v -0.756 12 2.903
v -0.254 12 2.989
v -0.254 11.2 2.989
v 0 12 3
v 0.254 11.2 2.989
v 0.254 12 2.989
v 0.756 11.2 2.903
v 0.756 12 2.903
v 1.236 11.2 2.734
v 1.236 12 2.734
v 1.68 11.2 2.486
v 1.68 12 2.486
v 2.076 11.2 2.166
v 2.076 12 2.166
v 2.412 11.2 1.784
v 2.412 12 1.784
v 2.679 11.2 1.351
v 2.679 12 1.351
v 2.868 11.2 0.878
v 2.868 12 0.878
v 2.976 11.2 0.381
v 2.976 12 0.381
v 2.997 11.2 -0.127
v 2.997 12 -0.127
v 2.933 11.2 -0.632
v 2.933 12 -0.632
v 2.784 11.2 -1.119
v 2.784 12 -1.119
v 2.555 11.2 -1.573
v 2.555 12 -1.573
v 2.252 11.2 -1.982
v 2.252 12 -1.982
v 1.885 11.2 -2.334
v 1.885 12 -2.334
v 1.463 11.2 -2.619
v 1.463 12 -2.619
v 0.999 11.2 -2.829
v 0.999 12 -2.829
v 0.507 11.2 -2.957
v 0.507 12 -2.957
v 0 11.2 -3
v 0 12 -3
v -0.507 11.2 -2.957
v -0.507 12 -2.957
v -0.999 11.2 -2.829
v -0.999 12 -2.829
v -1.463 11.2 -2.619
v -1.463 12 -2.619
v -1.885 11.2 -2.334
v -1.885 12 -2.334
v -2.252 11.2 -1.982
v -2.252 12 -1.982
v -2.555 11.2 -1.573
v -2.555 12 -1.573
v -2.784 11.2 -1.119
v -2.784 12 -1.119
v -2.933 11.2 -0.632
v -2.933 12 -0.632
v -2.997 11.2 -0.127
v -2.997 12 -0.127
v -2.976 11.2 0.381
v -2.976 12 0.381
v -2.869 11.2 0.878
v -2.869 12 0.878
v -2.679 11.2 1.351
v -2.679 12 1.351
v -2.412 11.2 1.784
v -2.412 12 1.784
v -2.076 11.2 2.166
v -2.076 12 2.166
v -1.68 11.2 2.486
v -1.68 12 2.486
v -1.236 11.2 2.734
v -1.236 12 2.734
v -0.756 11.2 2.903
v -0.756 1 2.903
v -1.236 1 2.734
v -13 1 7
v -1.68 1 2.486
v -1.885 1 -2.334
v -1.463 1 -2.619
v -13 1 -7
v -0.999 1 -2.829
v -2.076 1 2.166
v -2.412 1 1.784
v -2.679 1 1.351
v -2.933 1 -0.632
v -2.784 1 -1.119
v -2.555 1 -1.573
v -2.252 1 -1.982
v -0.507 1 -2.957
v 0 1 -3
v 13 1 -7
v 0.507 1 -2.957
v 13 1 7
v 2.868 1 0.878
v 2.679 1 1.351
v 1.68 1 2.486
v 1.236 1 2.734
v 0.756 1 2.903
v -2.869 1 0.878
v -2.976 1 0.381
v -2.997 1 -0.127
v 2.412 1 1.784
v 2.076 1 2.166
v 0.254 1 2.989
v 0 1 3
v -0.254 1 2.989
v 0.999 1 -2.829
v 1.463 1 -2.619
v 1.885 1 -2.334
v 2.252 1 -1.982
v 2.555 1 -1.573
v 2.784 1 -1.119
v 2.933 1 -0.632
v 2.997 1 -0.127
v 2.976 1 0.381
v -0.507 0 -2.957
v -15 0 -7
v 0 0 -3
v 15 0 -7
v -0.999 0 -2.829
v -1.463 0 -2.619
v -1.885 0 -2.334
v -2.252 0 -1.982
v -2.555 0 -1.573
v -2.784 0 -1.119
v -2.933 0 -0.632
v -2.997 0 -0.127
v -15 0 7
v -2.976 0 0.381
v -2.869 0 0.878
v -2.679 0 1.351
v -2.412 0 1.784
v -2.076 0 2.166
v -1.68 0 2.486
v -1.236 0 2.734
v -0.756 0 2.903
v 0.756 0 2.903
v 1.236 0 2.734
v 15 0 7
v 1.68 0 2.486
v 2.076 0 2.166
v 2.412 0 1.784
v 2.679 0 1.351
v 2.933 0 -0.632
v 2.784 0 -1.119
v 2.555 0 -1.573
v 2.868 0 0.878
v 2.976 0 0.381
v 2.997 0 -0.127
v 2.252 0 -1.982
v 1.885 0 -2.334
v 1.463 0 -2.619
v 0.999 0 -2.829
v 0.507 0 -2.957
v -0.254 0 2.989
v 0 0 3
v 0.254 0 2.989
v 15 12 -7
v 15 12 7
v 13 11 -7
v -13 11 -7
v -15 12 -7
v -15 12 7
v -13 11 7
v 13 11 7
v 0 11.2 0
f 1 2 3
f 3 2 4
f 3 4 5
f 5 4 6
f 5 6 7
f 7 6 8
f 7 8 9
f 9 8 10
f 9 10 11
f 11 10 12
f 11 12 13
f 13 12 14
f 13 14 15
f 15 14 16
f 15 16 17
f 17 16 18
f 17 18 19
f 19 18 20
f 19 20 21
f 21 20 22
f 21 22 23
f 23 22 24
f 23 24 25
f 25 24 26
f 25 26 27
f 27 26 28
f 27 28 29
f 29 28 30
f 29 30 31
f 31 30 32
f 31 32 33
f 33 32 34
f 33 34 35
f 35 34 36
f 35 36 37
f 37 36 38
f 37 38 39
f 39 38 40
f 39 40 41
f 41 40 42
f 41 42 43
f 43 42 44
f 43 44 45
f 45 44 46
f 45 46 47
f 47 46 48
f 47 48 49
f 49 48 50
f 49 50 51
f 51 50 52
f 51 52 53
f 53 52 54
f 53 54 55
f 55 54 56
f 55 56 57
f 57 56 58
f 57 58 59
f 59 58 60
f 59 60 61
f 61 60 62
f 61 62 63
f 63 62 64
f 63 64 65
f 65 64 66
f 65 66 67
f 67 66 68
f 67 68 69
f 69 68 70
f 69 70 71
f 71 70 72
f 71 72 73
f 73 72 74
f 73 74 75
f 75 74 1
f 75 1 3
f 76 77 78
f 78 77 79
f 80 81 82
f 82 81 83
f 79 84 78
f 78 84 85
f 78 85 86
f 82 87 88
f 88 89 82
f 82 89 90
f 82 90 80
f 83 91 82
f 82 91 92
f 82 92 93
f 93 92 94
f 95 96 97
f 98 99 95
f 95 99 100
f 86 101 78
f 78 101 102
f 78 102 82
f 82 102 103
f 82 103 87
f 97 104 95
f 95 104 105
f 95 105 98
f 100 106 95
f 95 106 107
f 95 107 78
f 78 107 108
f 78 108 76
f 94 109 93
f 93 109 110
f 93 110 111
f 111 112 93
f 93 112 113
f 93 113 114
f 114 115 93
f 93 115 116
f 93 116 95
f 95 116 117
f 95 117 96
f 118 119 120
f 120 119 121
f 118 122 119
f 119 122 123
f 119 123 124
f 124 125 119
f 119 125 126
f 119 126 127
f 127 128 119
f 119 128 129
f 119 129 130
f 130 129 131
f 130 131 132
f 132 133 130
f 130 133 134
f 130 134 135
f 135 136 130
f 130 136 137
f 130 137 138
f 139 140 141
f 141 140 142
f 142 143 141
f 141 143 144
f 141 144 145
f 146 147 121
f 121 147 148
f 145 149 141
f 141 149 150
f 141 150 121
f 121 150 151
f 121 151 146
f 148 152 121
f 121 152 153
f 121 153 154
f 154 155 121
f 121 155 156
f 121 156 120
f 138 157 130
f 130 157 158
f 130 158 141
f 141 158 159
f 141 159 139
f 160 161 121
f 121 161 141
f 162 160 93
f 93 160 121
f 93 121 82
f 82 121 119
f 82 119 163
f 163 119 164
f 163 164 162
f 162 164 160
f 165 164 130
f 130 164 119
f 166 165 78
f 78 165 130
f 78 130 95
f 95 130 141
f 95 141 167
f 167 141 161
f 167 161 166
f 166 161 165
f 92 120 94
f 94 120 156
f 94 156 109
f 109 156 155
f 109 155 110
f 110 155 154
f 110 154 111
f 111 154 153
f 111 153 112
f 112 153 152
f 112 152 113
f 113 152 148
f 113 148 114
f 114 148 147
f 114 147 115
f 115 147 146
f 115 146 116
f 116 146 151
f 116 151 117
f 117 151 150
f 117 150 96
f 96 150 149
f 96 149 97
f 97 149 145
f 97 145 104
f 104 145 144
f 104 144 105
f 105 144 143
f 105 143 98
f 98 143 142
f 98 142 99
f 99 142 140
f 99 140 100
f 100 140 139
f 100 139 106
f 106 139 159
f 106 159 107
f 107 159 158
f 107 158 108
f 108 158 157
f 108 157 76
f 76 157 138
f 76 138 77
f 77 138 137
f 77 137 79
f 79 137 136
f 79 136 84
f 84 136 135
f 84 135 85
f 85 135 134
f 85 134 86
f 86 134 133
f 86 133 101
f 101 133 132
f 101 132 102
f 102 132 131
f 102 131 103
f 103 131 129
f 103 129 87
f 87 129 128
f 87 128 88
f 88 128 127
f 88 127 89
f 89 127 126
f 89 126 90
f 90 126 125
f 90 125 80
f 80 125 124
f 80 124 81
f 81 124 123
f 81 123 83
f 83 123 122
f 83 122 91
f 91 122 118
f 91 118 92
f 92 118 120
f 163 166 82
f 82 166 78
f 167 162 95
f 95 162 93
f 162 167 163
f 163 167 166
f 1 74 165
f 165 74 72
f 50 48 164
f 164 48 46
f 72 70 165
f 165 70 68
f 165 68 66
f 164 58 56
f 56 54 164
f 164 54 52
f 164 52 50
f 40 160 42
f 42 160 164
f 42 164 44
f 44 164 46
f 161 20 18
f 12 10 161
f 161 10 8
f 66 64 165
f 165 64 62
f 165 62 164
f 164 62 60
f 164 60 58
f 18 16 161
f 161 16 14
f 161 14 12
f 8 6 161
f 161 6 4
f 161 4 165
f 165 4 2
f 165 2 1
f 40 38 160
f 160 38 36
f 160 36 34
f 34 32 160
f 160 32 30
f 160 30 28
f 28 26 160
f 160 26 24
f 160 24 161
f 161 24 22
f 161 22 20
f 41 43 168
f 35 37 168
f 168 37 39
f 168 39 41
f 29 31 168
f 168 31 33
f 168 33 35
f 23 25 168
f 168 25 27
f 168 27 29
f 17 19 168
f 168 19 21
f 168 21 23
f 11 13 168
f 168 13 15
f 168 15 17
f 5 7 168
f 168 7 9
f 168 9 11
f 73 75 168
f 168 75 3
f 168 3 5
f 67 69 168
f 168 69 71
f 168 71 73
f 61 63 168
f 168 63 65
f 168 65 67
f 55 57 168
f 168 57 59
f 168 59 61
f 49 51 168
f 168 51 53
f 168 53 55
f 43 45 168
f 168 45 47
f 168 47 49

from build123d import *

# Parameters (mm, degrees)
SKETCH_1_W      = 30
SKETCH_1_H      = 14
SKETCH_1_R      = 3
EXTRUDE_1_DEPTH = 1
SKETCH_2_W      = 2
SKETCH_2_H      = 14
EXTRUDE_2_DEPTH = 10
SKETCH_3_W      = 30
SKETCH_3_H      = 14
SKETCH_3_R      = 3
EXTRUDE_3_DEPTH = 1
SKETCH_4_R      = 3
EXTRUDE_4_DEPTH = 0.2


with BuildPart() as part:
    # Эскиз1 → Бобышка-Вытянуть1 (new body)
    with BuildSketch(Plane(origin=(0, 0, 0), x_dir=(1, 0, 0), z_dir=(0, 1, 0))):
        Rectangle(SKETCH_1_W, SKETCH_1_H)
        with Locations(Location((0, 0, 0), (0, 0, 270))):
            Circle(SKETCH_1_R, mode=Mode.SUBTRACT)
    extrude(amount=EXTRUDE_1_DEPTH)

    # Эскиз2 → Бобышка-Вытянуть2 (add)
    with BuildSketch(Plane(origin=(0, 1, 0), x_dir=(1, 0, 0), z_dir=(0, 1, 0))):
        with Locations((-14, 0)):
            Rectangle(SKETCH_2_W, SKETCH_2_H)
        with Locations((14, 0)):
            Rectangle(SKETCH_2_W, SKETCH_2_H)
    extrude(amount=EXTRUDE_2_DEPTH)

    # Эскиз3 → Бобышка-Вытянуть3 (add)
    with BuildSketch(Plane(origin=(0, 11, 0), x_dir=(1, 0, 0), z_dir=(0, 1, 0))):
        Rectangle(SKETCH_3_W, SKETCH_3_H)
        with Locations(Location((0, 0, 0), (0, 0, 270))):
            Circle(SKETCH_3_R, mode=Mode.SUBTRACT)
    extrude(amount=EXTRUDE_3_DEPTH)

    # Эскиз4 → Бобышка-Вытянуть4 (add)
    with BuildSketch(Plane.XZ.offset(-11)):
        with Locations(Location((0, 0, 0), (0, 0, 270))):
            Circle(SKETCH_4_R)
    extrude(amount=-EXTRUDE_4_DEPTH)


solid = part.part
